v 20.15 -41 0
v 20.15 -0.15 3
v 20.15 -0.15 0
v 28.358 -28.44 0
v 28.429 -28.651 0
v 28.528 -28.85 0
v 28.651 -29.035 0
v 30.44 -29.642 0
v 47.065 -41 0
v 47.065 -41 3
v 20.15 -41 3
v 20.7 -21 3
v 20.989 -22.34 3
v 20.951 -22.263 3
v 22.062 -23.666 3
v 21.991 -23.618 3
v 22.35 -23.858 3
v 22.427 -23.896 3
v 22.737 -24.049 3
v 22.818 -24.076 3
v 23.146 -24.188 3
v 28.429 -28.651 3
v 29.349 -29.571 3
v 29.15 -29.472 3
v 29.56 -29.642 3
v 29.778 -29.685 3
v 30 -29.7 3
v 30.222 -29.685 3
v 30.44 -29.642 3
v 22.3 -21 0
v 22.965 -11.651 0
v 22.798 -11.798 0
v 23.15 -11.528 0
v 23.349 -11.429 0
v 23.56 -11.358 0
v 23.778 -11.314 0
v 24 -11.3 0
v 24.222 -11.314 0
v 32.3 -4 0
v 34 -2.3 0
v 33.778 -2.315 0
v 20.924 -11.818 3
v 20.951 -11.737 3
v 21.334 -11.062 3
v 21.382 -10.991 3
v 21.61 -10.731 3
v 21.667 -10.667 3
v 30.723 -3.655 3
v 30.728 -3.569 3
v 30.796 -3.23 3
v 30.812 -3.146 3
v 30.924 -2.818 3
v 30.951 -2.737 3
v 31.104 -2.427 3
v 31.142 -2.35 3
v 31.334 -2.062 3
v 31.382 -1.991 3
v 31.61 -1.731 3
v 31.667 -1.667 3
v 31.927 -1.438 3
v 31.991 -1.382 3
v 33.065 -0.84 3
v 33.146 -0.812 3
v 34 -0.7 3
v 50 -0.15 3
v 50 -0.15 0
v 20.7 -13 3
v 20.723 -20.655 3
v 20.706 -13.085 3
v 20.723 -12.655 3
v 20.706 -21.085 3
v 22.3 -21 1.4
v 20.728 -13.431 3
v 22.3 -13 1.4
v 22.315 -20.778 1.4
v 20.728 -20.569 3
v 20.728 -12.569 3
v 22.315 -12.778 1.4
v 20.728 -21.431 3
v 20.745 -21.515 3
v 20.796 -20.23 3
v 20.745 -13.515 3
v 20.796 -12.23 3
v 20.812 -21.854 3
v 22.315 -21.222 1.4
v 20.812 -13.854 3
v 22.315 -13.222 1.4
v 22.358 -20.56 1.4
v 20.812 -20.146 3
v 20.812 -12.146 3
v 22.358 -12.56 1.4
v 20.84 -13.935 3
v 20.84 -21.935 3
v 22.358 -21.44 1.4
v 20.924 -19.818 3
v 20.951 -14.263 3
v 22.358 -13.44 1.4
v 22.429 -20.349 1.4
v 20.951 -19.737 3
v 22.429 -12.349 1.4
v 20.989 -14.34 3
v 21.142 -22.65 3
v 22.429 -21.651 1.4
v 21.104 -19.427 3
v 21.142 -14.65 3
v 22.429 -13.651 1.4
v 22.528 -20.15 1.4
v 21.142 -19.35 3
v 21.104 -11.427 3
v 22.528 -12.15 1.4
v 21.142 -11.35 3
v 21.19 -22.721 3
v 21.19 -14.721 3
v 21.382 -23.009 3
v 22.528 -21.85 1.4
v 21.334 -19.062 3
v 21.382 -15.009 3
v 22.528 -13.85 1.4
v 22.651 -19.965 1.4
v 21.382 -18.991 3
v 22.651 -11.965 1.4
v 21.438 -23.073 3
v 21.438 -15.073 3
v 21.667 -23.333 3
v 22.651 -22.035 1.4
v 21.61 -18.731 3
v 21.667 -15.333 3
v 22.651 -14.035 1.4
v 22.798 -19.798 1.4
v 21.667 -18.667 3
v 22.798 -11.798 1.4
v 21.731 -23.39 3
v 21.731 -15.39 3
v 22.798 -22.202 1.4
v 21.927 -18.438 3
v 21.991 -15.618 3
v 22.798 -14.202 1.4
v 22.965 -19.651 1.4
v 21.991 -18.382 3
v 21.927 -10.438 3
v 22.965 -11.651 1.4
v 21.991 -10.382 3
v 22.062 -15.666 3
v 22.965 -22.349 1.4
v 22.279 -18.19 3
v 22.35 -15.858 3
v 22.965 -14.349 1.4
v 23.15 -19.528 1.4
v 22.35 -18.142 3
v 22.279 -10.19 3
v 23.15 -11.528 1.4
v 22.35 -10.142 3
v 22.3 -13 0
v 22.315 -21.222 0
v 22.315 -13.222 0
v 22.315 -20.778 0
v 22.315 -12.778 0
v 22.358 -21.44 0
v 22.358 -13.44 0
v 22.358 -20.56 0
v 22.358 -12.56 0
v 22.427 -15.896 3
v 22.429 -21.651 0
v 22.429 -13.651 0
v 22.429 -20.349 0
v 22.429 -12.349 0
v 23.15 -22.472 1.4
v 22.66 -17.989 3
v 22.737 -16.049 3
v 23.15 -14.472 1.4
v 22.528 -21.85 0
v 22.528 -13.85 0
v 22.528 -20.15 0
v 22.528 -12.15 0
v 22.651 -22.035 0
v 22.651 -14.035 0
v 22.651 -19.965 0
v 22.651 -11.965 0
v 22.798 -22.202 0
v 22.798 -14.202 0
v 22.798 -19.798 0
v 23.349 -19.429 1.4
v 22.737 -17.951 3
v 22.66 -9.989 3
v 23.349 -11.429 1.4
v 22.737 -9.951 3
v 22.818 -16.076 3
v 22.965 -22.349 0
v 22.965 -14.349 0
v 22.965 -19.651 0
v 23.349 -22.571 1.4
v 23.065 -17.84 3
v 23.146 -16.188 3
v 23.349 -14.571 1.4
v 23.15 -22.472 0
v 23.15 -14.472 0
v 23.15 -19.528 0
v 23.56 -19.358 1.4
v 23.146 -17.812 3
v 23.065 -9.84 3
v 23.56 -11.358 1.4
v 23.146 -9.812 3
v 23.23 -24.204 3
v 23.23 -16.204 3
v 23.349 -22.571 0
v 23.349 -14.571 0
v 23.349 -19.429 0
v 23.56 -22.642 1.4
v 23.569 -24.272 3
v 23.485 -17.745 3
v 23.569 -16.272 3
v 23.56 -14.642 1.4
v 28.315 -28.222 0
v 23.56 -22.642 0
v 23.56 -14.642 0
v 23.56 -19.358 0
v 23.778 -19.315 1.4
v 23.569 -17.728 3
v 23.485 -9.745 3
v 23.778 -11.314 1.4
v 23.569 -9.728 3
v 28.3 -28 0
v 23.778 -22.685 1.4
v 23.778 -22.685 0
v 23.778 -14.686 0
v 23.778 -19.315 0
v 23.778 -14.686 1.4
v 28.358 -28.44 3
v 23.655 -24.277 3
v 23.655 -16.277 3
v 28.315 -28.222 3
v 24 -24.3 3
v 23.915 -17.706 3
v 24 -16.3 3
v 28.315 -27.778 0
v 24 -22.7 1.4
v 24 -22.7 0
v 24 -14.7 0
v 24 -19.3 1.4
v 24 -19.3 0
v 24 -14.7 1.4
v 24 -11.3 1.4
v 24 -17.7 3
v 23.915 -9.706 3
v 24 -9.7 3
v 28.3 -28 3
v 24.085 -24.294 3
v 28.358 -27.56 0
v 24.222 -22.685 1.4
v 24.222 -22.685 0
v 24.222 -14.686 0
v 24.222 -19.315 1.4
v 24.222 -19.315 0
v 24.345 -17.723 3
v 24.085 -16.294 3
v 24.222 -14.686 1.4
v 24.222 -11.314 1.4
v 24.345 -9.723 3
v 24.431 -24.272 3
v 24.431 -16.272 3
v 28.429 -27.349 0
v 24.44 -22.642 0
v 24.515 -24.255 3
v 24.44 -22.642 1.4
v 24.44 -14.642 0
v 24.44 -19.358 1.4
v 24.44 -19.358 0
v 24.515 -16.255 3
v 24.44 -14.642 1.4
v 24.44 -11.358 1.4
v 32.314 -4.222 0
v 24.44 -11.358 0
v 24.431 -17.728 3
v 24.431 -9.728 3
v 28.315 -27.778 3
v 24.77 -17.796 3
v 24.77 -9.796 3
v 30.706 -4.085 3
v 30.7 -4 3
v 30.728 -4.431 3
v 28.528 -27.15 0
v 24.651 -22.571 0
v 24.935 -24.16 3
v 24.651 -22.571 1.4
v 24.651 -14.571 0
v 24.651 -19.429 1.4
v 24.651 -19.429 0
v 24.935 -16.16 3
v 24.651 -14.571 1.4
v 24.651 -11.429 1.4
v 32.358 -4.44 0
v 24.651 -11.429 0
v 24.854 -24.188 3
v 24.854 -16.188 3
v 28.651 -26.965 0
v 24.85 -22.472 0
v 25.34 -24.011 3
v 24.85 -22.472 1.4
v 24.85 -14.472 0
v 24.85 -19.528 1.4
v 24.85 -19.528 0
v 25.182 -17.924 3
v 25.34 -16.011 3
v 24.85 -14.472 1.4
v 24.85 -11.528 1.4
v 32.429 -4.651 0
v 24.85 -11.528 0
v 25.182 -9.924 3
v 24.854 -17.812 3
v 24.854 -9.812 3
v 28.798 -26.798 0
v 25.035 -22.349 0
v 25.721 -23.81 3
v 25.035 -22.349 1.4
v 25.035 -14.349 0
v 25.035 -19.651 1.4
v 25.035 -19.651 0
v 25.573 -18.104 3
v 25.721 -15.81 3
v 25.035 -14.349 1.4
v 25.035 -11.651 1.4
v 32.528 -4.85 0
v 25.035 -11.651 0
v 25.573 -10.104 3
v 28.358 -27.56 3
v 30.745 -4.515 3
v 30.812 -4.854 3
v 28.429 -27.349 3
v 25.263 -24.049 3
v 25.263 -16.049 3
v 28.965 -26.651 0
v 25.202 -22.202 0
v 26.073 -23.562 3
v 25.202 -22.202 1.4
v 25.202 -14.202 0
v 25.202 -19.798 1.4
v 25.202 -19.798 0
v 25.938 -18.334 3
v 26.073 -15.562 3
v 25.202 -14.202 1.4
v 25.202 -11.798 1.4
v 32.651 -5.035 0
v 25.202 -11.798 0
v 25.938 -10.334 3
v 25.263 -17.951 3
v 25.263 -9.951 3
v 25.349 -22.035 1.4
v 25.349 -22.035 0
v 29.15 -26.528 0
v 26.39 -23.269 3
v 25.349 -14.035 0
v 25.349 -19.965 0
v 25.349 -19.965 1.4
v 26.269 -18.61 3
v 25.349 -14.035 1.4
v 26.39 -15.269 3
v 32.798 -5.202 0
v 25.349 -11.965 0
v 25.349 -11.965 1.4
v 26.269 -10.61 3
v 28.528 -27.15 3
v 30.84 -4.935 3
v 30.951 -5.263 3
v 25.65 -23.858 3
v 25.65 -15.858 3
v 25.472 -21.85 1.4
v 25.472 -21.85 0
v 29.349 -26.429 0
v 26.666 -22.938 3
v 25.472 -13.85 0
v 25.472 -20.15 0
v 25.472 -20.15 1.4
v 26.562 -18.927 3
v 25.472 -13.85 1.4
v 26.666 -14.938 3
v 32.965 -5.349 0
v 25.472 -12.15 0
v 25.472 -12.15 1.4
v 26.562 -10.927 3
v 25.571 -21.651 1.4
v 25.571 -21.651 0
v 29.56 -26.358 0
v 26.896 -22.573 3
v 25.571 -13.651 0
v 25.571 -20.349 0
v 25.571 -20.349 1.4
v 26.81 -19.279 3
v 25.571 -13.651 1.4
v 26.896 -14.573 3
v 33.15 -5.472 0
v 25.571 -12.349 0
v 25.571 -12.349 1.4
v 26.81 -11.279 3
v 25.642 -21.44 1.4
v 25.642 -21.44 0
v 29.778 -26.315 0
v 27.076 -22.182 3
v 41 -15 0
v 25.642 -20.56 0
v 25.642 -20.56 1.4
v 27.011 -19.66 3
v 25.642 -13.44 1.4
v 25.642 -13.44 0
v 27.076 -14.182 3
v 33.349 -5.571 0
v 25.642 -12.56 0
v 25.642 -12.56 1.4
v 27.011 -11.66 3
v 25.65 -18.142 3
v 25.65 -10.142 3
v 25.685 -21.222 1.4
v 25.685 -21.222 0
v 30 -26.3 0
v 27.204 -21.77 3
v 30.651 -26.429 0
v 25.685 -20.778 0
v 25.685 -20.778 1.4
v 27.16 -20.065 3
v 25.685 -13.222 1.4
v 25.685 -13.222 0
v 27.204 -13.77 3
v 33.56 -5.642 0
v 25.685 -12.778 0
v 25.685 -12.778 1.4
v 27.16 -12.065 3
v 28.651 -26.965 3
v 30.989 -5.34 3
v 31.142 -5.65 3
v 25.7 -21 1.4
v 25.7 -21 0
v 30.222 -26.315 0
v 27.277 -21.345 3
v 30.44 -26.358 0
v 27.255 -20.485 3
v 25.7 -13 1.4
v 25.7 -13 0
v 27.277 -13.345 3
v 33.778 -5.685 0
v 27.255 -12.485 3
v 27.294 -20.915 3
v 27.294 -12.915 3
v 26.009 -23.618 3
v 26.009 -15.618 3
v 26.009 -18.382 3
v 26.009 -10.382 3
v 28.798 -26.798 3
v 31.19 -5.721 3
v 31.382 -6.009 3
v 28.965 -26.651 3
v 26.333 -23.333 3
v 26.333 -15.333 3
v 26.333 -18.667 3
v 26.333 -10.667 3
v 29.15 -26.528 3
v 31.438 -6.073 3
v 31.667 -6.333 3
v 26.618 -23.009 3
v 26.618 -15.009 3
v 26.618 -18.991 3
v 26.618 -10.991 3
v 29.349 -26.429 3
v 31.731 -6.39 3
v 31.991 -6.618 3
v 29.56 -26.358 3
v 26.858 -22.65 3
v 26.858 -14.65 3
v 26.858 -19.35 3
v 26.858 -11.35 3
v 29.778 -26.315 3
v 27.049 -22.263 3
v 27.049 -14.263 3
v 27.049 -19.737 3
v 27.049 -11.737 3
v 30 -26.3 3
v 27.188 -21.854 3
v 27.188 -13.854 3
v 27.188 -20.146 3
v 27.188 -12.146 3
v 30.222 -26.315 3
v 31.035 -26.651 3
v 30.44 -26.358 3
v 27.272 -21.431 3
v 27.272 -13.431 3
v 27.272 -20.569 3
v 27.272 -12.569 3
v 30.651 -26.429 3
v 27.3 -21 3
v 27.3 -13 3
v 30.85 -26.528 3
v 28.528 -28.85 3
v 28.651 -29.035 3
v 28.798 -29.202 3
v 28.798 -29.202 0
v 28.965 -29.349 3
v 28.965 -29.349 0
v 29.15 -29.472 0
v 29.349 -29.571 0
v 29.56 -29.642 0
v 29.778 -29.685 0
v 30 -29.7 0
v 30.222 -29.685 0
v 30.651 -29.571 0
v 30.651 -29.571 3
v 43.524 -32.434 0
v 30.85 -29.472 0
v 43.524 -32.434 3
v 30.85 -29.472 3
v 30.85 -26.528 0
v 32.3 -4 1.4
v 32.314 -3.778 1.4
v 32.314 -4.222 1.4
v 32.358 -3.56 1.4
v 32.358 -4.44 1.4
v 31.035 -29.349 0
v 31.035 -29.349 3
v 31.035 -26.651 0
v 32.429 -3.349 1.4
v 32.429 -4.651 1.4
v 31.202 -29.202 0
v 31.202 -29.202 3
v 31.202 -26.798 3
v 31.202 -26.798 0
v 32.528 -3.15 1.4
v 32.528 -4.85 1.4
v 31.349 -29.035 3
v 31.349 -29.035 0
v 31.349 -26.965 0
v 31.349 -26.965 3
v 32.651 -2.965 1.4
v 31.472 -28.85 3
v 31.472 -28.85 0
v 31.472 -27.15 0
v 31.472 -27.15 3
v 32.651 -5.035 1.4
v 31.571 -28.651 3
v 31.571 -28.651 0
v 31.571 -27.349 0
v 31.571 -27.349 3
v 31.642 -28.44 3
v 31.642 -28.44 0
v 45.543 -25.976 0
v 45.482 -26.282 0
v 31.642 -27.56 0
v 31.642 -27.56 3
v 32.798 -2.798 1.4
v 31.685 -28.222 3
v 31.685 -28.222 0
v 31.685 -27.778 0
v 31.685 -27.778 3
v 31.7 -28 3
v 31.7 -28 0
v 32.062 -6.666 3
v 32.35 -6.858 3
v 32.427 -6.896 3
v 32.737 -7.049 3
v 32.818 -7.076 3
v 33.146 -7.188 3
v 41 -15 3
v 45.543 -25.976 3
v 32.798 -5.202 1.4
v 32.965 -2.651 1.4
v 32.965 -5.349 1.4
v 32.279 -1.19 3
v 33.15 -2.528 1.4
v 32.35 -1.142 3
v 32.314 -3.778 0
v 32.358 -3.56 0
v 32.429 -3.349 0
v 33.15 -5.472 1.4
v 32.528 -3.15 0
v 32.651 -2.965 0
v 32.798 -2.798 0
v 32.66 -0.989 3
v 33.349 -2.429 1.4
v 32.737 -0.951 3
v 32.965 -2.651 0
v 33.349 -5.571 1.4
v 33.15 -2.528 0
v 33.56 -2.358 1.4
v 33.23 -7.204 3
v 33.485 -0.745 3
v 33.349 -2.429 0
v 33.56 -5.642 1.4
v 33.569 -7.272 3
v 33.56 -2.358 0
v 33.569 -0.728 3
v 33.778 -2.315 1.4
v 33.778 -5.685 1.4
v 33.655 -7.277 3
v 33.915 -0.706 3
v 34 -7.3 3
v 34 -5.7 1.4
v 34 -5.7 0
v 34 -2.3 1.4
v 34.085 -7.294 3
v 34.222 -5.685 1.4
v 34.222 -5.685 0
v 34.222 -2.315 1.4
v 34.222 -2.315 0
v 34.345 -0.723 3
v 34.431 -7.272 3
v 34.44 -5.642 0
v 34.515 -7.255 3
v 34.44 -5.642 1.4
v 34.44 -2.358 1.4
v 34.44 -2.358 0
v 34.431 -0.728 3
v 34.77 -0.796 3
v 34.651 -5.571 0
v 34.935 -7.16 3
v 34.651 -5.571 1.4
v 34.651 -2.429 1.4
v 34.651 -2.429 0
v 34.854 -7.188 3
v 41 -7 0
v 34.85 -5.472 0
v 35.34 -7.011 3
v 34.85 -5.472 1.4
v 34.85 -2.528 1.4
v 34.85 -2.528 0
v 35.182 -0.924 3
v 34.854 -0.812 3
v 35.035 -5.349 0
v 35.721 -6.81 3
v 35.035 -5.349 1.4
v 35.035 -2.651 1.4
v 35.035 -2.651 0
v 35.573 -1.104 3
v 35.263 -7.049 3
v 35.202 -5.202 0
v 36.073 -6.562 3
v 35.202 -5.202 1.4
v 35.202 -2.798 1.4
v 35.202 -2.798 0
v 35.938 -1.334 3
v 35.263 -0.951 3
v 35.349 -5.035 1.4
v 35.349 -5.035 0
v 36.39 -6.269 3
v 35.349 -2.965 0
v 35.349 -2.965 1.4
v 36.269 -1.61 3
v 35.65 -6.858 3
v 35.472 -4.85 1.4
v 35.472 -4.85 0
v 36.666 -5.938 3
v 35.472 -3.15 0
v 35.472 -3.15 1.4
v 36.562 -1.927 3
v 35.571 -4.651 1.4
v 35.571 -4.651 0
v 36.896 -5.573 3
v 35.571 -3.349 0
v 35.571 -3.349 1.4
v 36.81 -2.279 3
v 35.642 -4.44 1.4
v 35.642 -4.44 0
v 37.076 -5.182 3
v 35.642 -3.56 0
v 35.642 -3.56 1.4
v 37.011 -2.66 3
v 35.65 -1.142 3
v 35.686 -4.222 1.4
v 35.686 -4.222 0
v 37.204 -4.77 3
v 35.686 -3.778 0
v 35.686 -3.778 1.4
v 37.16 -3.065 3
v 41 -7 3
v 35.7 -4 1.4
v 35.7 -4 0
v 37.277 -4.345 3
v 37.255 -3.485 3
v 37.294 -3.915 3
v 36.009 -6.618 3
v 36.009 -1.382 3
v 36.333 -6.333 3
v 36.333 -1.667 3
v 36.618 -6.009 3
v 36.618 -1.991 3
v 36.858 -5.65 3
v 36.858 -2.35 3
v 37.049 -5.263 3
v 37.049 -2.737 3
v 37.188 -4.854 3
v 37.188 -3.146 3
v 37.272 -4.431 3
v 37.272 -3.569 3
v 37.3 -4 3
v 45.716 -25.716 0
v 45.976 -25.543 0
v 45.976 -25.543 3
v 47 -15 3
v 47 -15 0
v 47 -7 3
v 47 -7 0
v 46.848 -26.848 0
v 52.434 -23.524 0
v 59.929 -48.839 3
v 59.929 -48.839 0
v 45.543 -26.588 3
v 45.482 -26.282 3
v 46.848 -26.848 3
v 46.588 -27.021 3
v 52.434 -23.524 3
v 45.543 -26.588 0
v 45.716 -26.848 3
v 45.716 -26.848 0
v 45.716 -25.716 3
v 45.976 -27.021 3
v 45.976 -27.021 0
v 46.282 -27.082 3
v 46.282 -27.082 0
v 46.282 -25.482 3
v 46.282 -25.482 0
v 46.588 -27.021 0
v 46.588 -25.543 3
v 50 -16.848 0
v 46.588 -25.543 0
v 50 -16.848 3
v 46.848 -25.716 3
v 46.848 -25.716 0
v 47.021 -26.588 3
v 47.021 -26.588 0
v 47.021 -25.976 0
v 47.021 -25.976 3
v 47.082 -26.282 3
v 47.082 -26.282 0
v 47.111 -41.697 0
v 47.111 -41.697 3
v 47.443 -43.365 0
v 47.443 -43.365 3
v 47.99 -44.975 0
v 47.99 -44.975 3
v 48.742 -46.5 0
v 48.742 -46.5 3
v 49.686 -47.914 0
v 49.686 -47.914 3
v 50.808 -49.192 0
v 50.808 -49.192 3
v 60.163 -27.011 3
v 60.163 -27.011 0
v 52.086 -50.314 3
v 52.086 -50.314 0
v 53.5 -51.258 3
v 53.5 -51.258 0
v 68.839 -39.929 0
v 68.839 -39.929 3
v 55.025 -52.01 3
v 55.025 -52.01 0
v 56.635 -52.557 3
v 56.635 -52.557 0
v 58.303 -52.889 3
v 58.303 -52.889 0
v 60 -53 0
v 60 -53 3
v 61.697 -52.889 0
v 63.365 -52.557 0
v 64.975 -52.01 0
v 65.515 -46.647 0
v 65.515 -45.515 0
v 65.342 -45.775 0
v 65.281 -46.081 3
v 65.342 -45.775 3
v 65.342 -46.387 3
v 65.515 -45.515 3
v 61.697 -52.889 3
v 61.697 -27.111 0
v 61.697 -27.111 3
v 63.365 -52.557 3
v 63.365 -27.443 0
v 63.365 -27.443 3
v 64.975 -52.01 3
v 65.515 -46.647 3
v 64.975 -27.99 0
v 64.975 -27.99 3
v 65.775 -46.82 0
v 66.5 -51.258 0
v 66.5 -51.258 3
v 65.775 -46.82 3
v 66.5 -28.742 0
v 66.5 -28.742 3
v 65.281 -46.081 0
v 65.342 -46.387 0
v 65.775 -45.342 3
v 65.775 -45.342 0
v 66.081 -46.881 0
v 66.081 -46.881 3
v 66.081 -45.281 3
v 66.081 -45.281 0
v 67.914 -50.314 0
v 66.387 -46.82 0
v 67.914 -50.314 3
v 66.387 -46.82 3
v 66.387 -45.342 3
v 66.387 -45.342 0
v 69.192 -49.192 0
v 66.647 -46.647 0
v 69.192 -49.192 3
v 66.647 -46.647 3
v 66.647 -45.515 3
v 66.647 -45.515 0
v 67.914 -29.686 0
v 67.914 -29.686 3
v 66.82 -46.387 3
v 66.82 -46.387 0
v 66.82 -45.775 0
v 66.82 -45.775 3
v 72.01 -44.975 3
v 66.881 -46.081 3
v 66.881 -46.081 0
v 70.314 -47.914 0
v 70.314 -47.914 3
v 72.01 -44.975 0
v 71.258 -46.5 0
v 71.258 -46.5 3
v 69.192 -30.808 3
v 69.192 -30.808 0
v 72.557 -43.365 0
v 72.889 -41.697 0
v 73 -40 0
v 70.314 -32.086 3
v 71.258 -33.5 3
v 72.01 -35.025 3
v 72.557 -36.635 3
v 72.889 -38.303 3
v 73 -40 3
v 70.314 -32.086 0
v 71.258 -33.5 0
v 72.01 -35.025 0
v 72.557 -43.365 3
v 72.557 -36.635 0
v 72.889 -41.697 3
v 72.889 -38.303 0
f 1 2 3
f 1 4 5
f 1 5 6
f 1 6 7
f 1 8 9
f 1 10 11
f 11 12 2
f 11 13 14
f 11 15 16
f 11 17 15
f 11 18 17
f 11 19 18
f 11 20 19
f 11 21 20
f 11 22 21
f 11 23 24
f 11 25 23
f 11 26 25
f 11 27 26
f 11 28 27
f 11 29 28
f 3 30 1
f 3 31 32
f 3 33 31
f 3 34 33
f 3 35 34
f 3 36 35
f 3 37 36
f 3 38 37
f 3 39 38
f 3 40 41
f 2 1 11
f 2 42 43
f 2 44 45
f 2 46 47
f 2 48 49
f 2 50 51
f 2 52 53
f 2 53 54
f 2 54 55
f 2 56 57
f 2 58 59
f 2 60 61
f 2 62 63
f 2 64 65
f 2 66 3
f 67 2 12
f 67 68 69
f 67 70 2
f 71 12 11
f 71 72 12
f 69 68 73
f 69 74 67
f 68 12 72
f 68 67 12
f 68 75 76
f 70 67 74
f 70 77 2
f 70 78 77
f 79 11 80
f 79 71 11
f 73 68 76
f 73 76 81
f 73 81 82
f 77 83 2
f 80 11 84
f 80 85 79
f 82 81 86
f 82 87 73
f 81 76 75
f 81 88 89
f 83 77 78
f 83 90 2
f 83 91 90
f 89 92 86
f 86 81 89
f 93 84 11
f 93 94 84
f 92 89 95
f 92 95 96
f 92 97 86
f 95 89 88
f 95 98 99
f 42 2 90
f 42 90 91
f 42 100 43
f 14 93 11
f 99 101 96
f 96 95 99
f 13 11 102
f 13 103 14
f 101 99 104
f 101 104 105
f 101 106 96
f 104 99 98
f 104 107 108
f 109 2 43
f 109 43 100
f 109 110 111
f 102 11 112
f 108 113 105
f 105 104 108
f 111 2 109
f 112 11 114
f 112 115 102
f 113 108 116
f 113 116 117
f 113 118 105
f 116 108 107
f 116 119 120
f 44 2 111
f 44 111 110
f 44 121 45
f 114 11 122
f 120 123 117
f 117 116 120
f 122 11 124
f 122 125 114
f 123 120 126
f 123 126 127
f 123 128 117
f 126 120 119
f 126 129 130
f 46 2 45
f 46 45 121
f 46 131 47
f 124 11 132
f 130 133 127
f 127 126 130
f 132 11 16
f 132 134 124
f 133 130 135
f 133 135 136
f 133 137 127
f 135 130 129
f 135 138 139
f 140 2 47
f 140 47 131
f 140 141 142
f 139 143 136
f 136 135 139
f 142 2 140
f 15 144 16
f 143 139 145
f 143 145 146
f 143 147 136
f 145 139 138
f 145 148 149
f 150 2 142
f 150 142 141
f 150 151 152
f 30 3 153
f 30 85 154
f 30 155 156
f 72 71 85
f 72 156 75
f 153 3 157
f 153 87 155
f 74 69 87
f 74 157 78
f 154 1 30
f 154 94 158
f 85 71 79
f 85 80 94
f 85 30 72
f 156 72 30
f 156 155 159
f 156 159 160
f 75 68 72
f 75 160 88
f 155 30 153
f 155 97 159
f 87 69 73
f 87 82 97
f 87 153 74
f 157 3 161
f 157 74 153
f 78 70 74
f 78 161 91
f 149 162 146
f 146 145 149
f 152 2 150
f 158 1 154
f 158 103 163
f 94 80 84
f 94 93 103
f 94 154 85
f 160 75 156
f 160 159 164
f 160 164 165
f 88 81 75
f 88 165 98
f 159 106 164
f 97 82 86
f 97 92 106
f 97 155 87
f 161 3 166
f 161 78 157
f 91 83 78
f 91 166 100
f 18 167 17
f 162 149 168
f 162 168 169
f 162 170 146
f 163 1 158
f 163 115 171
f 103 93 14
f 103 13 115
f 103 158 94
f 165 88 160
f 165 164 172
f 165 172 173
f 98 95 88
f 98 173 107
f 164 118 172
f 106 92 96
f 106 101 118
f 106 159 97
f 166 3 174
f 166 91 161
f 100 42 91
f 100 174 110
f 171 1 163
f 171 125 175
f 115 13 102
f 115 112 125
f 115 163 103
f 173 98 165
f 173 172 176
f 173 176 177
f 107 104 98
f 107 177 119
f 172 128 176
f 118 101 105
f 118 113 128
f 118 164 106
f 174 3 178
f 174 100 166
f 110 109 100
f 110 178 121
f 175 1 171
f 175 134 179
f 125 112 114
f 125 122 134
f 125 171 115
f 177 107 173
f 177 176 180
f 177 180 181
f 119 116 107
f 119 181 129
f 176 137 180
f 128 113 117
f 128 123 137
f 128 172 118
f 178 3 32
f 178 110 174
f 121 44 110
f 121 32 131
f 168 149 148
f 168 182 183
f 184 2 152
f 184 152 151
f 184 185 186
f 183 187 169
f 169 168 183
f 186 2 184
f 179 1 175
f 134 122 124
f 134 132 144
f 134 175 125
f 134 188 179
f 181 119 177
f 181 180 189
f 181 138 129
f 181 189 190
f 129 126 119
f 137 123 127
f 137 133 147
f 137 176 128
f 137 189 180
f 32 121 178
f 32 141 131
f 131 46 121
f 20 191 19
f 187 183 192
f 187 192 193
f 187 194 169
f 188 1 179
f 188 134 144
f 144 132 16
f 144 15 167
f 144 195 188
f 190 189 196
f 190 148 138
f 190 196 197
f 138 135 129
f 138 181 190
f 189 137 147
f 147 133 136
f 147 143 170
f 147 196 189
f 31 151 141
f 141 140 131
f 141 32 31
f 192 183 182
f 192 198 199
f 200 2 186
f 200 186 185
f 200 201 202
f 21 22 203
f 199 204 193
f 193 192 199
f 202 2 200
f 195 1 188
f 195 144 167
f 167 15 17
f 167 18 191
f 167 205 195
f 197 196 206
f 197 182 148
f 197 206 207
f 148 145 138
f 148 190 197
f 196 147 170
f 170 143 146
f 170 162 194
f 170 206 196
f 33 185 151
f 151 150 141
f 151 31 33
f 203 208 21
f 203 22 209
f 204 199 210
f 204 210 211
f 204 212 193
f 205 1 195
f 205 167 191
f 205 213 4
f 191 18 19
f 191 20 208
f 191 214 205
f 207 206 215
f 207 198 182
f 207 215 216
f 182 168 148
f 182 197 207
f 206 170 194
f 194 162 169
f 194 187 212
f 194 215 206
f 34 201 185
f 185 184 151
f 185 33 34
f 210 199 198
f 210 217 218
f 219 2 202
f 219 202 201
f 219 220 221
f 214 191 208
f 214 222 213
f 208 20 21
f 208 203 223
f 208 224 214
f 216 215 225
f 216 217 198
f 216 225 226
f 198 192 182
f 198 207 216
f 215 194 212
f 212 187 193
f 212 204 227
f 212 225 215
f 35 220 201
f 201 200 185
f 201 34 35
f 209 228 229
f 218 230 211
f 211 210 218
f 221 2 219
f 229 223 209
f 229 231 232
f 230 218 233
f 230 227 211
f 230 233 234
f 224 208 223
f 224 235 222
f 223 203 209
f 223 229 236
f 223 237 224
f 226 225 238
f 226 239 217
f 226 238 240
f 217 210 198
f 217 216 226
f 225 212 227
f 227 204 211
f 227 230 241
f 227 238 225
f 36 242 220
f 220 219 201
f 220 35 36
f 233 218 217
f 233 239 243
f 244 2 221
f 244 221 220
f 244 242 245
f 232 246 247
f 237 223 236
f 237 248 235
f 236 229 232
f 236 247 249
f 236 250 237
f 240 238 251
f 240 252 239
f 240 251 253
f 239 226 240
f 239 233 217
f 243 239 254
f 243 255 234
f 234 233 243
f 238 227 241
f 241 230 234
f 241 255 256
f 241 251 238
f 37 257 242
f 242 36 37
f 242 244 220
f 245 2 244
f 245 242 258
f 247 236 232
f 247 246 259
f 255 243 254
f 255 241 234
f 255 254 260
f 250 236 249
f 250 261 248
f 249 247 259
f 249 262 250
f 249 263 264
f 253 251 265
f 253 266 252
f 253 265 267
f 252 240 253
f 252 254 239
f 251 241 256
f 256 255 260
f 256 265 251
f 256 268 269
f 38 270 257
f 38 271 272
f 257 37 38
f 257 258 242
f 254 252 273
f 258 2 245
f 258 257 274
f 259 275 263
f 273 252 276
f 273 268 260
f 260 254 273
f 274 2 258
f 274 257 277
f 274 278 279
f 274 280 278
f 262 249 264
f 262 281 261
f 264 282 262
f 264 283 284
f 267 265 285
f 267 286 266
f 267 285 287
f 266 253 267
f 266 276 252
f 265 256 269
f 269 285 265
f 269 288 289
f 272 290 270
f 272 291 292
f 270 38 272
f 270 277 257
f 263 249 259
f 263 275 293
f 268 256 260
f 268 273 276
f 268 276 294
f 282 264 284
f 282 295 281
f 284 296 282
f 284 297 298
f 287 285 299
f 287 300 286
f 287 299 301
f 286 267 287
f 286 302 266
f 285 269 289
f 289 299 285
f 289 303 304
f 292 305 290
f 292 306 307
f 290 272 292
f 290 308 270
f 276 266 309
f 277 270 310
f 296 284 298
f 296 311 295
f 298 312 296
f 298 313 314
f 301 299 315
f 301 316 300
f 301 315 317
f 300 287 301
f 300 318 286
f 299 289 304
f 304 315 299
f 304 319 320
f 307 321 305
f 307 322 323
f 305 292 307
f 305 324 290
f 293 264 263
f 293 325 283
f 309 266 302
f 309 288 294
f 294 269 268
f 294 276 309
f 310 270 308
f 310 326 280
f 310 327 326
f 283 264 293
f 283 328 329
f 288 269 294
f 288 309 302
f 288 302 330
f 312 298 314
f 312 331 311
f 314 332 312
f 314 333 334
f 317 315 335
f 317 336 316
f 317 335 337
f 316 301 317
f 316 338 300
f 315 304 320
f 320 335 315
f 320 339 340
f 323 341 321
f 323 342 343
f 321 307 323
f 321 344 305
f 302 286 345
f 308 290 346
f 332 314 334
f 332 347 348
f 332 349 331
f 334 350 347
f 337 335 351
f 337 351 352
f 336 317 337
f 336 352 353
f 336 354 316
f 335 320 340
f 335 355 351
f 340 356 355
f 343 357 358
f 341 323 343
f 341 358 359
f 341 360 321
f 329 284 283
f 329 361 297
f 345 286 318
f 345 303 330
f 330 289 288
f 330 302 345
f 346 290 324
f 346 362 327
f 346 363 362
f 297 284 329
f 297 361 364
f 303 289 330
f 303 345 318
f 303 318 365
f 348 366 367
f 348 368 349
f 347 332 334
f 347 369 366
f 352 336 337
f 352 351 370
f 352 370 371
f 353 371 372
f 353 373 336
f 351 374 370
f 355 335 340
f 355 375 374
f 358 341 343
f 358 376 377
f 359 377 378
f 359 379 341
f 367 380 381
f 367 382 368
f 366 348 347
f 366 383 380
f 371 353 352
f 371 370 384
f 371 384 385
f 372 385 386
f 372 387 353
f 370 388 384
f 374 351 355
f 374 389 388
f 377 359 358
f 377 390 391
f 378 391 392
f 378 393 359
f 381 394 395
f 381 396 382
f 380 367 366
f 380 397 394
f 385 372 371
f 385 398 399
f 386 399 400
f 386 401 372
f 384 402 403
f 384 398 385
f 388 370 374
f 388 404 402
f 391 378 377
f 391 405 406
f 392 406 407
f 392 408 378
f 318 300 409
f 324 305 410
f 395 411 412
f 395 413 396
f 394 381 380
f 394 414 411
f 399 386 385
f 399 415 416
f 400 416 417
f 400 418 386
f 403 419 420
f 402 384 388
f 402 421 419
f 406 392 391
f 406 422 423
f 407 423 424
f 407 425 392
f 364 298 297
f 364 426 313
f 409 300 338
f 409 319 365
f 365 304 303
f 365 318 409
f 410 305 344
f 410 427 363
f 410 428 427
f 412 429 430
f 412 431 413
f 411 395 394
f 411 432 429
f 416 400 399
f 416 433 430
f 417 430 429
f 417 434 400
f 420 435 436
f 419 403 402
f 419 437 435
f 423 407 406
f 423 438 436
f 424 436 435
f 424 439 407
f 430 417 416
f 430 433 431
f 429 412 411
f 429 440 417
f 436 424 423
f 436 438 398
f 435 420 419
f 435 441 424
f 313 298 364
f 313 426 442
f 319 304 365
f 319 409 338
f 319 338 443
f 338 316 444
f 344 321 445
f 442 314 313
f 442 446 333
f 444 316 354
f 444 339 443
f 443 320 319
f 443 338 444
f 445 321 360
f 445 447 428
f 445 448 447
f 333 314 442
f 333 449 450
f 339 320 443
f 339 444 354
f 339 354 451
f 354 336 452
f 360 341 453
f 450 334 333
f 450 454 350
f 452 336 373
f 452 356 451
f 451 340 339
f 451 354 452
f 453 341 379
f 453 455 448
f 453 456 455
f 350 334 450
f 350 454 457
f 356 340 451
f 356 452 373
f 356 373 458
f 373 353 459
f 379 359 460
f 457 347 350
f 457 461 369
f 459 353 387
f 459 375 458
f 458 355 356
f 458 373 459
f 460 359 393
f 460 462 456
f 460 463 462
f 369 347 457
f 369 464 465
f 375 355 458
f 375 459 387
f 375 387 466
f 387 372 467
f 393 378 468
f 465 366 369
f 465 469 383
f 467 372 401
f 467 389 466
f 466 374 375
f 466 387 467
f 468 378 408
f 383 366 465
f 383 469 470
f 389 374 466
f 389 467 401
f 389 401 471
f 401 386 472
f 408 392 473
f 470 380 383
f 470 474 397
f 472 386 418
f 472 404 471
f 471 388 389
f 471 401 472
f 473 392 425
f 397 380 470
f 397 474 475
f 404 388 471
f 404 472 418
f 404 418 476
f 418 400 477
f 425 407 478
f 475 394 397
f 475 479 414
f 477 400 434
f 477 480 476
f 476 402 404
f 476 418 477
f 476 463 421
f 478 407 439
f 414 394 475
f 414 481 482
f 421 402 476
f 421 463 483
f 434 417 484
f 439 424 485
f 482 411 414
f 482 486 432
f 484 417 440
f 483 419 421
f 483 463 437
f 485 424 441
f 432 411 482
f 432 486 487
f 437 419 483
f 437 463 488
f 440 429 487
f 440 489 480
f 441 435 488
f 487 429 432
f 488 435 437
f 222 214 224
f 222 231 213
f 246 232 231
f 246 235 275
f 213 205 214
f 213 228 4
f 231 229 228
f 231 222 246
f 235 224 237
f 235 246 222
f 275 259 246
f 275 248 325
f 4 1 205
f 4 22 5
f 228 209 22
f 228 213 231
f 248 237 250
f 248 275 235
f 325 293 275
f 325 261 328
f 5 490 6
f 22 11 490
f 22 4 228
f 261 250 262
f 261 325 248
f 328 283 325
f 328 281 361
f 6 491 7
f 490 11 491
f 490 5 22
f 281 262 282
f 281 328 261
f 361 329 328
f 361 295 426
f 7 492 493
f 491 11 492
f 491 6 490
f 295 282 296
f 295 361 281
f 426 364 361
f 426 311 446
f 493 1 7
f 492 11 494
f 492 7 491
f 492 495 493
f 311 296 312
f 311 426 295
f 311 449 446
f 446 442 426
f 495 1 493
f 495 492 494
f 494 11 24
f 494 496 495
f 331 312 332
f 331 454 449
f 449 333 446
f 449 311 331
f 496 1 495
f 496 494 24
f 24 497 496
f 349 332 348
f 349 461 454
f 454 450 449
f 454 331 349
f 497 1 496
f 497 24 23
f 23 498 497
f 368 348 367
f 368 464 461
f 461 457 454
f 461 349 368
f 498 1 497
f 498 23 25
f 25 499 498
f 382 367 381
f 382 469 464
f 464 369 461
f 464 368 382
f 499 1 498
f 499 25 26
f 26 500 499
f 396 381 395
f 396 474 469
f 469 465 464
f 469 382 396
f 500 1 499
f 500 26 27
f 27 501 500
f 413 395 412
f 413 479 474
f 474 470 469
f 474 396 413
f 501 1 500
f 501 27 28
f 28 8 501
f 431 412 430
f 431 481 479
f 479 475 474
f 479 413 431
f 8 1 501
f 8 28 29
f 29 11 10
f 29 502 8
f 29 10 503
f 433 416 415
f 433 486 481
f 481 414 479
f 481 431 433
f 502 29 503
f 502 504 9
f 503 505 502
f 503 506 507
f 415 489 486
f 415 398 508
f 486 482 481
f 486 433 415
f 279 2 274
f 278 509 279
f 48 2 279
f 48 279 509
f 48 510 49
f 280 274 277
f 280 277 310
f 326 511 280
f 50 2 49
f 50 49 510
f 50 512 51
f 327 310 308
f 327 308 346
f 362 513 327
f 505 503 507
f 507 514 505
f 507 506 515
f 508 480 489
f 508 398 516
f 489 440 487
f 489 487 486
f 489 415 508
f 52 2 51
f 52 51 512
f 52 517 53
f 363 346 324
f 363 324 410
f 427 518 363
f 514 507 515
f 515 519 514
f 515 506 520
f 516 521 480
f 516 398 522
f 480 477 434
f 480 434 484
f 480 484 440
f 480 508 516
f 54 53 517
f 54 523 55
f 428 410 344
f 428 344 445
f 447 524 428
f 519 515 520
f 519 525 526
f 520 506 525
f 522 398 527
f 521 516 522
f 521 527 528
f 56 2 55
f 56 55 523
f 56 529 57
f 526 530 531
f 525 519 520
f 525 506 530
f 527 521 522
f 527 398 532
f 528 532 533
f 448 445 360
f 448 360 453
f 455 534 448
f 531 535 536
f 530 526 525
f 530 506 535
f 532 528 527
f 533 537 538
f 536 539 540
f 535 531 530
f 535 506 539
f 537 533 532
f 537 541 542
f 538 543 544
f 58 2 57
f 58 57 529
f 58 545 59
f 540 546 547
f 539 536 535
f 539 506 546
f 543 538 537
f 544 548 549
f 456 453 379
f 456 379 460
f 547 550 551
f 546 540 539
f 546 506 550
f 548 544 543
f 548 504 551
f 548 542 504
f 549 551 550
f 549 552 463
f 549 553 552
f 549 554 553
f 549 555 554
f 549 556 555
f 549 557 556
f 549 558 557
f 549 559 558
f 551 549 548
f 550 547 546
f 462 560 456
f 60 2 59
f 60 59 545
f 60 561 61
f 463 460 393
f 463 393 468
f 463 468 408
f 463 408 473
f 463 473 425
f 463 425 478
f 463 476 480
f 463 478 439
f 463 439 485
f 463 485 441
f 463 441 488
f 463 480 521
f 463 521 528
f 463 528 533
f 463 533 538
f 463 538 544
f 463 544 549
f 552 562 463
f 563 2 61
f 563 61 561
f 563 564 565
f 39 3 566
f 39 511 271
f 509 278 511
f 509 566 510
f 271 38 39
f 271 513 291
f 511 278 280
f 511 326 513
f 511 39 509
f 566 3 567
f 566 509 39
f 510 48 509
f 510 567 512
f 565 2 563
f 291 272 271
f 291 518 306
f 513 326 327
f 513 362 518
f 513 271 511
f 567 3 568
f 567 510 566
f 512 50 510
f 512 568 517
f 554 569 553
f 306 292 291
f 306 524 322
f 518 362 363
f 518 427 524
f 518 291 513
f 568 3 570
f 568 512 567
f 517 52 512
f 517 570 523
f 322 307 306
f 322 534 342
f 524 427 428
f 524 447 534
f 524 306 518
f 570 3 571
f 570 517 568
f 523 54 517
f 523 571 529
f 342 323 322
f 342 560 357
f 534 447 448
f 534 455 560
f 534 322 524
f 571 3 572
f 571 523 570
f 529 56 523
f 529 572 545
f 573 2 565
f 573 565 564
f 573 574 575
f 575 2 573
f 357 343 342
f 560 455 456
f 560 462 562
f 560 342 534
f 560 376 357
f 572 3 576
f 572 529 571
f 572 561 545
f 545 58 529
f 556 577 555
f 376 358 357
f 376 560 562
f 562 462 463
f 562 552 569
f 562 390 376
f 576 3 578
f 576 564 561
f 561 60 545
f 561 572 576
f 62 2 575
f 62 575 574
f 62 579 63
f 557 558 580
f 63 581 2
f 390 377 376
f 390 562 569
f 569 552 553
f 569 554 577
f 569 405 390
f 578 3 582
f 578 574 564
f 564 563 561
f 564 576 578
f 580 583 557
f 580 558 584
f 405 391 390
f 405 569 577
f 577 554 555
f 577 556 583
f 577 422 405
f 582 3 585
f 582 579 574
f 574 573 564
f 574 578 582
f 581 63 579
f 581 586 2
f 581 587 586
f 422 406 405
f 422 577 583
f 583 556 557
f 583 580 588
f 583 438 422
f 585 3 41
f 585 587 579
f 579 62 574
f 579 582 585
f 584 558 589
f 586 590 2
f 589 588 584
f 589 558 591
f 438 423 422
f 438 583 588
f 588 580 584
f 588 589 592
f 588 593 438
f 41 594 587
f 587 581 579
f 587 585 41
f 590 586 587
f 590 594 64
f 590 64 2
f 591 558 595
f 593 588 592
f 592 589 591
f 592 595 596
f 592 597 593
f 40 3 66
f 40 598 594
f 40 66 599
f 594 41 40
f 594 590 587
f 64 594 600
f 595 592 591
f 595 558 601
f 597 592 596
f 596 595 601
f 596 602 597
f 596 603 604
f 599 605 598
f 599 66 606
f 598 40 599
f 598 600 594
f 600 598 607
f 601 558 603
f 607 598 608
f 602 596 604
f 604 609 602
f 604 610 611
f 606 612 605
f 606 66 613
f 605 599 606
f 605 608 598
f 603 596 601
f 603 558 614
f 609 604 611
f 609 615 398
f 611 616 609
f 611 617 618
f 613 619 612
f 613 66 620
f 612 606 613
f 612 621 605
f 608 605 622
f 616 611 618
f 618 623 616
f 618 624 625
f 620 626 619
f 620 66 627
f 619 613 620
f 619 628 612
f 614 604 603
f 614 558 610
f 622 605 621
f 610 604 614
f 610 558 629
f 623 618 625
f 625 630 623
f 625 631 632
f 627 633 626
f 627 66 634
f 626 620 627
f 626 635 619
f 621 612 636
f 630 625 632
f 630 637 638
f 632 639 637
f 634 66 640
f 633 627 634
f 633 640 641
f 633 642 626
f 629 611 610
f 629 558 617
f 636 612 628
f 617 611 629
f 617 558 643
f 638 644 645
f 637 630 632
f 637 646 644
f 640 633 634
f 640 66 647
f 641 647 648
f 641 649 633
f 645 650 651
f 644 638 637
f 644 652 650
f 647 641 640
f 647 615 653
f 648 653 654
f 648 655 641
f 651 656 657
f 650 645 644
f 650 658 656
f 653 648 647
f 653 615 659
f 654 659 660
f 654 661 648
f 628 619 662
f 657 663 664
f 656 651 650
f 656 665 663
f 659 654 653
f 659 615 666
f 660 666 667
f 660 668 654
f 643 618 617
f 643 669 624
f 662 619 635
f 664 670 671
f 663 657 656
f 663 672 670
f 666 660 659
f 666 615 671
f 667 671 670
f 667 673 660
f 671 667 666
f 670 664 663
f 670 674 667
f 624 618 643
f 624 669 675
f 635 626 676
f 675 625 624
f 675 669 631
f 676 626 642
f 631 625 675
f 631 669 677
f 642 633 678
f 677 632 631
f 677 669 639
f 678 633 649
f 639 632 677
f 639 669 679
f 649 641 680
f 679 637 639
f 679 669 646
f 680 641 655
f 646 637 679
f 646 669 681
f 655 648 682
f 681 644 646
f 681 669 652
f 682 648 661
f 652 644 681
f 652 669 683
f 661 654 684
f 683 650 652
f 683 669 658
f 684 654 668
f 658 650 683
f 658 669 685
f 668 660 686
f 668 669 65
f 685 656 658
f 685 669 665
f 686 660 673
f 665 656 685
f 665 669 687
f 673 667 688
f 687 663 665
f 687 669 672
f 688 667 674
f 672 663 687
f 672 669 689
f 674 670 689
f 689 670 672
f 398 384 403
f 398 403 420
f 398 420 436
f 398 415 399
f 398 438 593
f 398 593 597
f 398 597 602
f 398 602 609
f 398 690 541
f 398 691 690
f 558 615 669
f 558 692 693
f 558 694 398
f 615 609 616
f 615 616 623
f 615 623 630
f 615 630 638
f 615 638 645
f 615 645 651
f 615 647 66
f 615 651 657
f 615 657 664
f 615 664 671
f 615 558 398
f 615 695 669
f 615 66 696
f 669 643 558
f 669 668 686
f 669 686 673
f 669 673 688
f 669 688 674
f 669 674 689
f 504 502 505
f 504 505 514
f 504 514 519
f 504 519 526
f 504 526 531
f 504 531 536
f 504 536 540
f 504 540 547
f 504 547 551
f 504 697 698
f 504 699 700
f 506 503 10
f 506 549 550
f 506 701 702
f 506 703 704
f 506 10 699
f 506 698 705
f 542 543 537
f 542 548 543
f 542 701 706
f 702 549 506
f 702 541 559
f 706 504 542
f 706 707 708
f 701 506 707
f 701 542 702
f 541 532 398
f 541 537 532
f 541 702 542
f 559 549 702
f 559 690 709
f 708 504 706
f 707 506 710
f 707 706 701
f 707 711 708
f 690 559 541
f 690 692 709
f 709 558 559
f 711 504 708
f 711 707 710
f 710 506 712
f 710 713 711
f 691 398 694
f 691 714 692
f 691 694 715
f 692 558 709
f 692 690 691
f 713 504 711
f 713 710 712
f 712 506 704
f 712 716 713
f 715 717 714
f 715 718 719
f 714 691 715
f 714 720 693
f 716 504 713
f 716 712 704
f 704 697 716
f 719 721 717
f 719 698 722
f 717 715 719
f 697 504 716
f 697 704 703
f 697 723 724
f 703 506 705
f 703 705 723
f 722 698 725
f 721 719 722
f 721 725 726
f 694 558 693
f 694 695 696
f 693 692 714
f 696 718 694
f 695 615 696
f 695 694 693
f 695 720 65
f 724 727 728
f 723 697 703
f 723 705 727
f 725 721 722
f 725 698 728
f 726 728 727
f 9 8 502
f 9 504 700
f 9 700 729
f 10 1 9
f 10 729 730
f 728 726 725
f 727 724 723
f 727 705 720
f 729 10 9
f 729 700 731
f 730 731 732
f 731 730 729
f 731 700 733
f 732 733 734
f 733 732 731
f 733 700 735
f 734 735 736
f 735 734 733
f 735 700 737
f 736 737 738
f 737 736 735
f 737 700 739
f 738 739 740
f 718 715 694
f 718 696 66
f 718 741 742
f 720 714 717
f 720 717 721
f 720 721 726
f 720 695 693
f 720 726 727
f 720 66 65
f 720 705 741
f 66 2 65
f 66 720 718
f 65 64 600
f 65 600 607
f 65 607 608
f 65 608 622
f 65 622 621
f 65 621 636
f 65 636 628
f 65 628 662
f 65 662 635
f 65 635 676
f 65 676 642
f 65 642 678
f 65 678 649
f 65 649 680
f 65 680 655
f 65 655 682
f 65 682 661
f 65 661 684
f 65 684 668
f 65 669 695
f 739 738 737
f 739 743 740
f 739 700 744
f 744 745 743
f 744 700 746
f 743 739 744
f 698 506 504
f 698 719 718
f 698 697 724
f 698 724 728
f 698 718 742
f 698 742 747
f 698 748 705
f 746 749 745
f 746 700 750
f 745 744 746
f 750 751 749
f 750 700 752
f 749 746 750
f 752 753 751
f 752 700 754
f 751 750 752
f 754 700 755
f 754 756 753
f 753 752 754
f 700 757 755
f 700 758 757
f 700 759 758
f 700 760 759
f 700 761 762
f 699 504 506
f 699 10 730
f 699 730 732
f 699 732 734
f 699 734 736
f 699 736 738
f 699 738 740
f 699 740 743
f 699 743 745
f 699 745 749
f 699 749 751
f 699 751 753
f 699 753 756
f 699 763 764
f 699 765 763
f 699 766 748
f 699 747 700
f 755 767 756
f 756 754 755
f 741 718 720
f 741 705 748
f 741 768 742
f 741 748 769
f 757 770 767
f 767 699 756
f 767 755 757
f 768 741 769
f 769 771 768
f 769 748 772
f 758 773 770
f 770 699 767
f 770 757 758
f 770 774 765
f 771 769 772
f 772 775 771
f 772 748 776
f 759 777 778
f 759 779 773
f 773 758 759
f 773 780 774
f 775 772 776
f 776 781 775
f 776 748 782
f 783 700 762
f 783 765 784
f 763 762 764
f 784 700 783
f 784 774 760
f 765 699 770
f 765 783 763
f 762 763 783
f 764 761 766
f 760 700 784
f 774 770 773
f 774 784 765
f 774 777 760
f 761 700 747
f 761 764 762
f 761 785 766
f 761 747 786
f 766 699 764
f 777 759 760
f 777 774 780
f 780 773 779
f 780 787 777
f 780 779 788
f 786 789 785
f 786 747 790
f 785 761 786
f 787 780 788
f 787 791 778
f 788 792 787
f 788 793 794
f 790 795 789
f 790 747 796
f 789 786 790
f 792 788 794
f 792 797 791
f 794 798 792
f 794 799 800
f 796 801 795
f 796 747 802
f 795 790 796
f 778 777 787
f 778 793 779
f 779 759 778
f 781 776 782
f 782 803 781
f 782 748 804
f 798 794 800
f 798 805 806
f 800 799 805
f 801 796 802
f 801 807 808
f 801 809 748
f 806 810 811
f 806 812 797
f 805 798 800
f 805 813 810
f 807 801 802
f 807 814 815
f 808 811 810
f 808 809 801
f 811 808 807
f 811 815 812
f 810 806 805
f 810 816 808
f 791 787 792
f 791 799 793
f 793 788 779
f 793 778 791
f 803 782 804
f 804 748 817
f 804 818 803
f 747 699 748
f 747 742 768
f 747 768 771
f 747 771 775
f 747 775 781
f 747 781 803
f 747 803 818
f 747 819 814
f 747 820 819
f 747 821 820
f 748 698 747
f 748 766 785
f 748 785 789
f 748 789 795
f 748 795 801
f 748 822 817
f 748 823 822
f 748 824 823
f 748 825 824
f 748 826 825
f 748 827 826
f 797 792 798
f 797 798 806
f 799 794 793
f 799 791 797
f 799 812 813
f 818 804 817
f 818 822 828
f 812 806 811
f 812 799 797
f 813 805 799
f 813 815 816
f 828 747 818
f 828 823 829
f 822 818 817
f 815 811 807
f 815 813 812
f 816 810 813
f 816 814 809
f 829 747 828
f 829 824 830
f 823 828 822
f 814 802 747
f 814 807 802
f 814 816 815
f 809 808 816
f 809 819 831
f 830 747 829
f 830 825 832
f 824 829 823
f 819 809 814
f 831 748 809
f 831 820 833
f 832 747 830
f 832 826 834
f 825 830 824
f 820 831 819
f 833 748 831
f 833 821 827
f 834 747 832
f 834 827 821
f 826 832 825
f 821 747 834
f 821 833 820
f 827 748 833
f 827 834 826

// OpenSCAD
// file: params.scad
// 18 舵机六足 · 3D 打印机身 · 共享参数和公共模块（本文件自己不导出 STL）
//
// 腿的几何尺寸和固件 firmware/hexapod_g7pro/params.h 的默认值一一对应：
//   coxa_len ↔ coxa    femur_len ↔ femur    tibia_len ↔ tibia
//   front_x / front_y / front_angle / mid_y / rear_x / rear_y / rear_angle 同名
// 所以打印这套机身，固件的腿长和安装位置参数都不用改。
//
// 坐标约定（和固件一致）：
//   机身坐标：X+ = 前，Y+ = 左，Z+ = 上，原点 = 机身中心，高度原点 = 大腿舵机轴。
//   腿坐标：原点 = 基节转轴，X+ = 腿朝外，Y+ = 逆时针一侧，Z+ = 上。
// 6 条腿的零件完全一样（不分左右），左右舵机转向的差别由固件里的 dir 参数处理。

/* [舵机 MG90S（量你自己的）] */
servo_w = 12.2;           // 机身宽度 (mm)
servo_l = 22.8;           // 机身长度，沿安装耳方向 (mm)
ear_span = 32.5;          // 两个安装耳外端之间的总长 (mm)
ear_hole_spacing = 28.0;  // 两个安装孔的中心距 (mm)
ear_z = 15.9;             // 机壳底面 → 安装耳下表面 (mm)
ear_t = 2.5;              // 安装耳厚度 (mm)
case_h = 22.7;            // 机壳底面 → 机壳顶面（不含输出轴）(mm)
shaft_off = 5.4;          // 输出轴中心 → 机身中心，沿长度方向 (mm)
shaft_gap = 4.0;          // 机壳顶面 → 舵机臂贴合面 (mm)

/* [舵机臂（单边臂，量你自己的）] */
horn_hub_d = 7.6;         // 舵机臂中心圆盘直径 (mm)
horn_len = 18.5;          // 中心 → 臂尖 (mm)
horn_w_hub = 6.2;         // 臂根宽度 (mm)
horn_w_tip = 4.2;         // 臂尖宽度 (mm)
horn_t = 1.6;             // 臂厚 = 零件上凹槽深度 (mm)
horn_holes = [10.5, 14.5];// 固定舵机臂的两个孔到中心的距离 (mm)
horn_screw_access = 5.5;  // 中心过孔：舵机臂中心螺丝和螺丝刀从这里进 (mm)

/* [腿的几何（和固件 params.h 一致）] */
coxa_len = 28;            // 基节转轴 → 大腿舵机轴 (mm)
femur_len = 50;           // 大腿舵机轴 → 小腿舵机轴 (mm)
tibia_len = 75;           // 小腿舵机轴 → 脚尖 (mm)
front_x = 60; front_y = 40; front_angle = 45;
mid_y = 55;
rear_x = 60; rear_y = 40; rear_angle = 135;

/* [打印余量和螺丝] */
clearance = 0.4;          // 方孔比舵机大多少 (mm)；太紧改 0.5
screw_pilot = 1.6;        // M2 自攻螺丝底孔（舵机安装耳）(mm)
horn_screw_hole = 2.0;    // 舵机臂固定螺丝过孔 (mm)
m3_hole = 3.4;            // M3 通孔 (mm)

/* [机身] */
plate_t = 3.0;            // 底板 / 甲板厚度 (mm)
standoff_h = 25;          // 底板和甲板之间的 M3 铜柱长度 (mm)
bar_t = 4.0;              // 大腿板厚度 (mm)
mount_t = 3.0;            // 舵机安装板厚度 (mm)
coxa_horn_z = 11;         // 基节舵机臂贴合面高度（相对大腿轴）(mm)

/* [Hidden] */
// 6 条腿：[髋轴 X, 髋轴 Y, 朝向°]，顺序 LF LM LR RF RM RR（和固件 leg 0..5 一致）
legs = [
  [ front_x,  front_y,  front_angle],
  [ 0,        mid_y,    90],
  [-rear_x,   rear_y,   rear_angle],
  [ front_x, -front_y, -front_angle],
  [ 0,       -mid_y,   -90],
  [-rear_x,  -rear_y,  -rear_angle]
];
leg_names = ["LF", "LM", "LR", "RF", "RM", "RR"];

pocket_w = servo_w + clearance;
pocket_l = servo_l + clearance;
// 舵机本地坐标：输出轴 = +Z，舵机臂贴合面在 z = 0，机身沿 +X 伸出（机身中心 x = shaft_off）
ear_low = -shaft_gap - case_h + ear_z;       // 安装耳“朝机壳底”的那一面，安装板贴在这里
plate_top_z = coxa_horn_z + ear_low;         // 底板上表面高度（相对大腿轴）
deck_z = plate_top_z + standoff_h;           // 甲板下表面高度

module at_leg(l) translate([l[0], l[1]]) rotate(l[2]) children();

// 舵机实体（装配预览 / 干涉检查用）
module servo_body() {
  color("DimGray") {
    translate([shaft_off - servo_l / 2, -servo_w / 2, -shaft_gap - case_h]) cube([servo_l, servo_w, case_h]);
    // 耳朵和输出轴都留 0.05 mm，避免“刚好贴着”被干涉检查当成碰撞
    translate([shaft_off - ear_span / 2, -servo_w / 2, ear_low + 0.05]) cube([ear_span, servo_w, ear_t - 0.05]);
    translate([0, 0, -shaft_gap]) cylinder(d = 5, h = shaft_gap - 0.05);
  }
}

// 安装板上的舵机方孔 + 两个安装耳螺丝底孔（在舵机本地坐标里，穿过安装板）
module servo_mount_cut() {
  translate([shaft_off - pocket_l / 2, -pocket_w / 2, ear_low - mount_t - 1]) cube([pocket_l, pocket_w, mount_t + 2]);
  for (s = [-1, 1]) translate([shaft_off + s * ear_hole_spacing / 2, 0, ear_low - mount_t - 1])
    cylinder(d = screw_pilot, h = mount_t + 2, $fn = 16);
}

// 单边舵机臂的 2D 外形：中心在原点，臂沿 +X
module horn_2d(extra = 0) {
  hull() {
    circle(d = horn_hub_d + extra);
    translate([0, -(horn_w_hub + extra) / 2]) square([0.01, horn_w_hub + extra]);
    translate([horn_len - horn_w_tip / 2, 0]) circle(d = horn_w_tip + extra);
  }
}

// 舵机臂凹槽：从 z = 0 往 +Z 挖 horn_t 深，加中心过孔和两个螺丝过孔（贯穿 depth）
module horn_cut(depth) {
  translate([0, 0, -0.01]) linear_extrude(horn_t + 0.01) horn_2d(clearance);
  translate([0, 0, -1]) cylinder(d = horn_screw_access, h = depth + 2, $fn = 24);
  for (r = horn_holes) translate([r, 0, -1]) cylinder(d = horn_screw_hole, h = depth + 2, $fn = 16);
}
// main file
// 底板前右（右前腿）：打 1 个。平放（有沉头孔的一面朝上）。
include <parts.scad>
translate([0, 0, -(plate_top_z - plate_t)]) body_plate_piece(front = true, left = false);
